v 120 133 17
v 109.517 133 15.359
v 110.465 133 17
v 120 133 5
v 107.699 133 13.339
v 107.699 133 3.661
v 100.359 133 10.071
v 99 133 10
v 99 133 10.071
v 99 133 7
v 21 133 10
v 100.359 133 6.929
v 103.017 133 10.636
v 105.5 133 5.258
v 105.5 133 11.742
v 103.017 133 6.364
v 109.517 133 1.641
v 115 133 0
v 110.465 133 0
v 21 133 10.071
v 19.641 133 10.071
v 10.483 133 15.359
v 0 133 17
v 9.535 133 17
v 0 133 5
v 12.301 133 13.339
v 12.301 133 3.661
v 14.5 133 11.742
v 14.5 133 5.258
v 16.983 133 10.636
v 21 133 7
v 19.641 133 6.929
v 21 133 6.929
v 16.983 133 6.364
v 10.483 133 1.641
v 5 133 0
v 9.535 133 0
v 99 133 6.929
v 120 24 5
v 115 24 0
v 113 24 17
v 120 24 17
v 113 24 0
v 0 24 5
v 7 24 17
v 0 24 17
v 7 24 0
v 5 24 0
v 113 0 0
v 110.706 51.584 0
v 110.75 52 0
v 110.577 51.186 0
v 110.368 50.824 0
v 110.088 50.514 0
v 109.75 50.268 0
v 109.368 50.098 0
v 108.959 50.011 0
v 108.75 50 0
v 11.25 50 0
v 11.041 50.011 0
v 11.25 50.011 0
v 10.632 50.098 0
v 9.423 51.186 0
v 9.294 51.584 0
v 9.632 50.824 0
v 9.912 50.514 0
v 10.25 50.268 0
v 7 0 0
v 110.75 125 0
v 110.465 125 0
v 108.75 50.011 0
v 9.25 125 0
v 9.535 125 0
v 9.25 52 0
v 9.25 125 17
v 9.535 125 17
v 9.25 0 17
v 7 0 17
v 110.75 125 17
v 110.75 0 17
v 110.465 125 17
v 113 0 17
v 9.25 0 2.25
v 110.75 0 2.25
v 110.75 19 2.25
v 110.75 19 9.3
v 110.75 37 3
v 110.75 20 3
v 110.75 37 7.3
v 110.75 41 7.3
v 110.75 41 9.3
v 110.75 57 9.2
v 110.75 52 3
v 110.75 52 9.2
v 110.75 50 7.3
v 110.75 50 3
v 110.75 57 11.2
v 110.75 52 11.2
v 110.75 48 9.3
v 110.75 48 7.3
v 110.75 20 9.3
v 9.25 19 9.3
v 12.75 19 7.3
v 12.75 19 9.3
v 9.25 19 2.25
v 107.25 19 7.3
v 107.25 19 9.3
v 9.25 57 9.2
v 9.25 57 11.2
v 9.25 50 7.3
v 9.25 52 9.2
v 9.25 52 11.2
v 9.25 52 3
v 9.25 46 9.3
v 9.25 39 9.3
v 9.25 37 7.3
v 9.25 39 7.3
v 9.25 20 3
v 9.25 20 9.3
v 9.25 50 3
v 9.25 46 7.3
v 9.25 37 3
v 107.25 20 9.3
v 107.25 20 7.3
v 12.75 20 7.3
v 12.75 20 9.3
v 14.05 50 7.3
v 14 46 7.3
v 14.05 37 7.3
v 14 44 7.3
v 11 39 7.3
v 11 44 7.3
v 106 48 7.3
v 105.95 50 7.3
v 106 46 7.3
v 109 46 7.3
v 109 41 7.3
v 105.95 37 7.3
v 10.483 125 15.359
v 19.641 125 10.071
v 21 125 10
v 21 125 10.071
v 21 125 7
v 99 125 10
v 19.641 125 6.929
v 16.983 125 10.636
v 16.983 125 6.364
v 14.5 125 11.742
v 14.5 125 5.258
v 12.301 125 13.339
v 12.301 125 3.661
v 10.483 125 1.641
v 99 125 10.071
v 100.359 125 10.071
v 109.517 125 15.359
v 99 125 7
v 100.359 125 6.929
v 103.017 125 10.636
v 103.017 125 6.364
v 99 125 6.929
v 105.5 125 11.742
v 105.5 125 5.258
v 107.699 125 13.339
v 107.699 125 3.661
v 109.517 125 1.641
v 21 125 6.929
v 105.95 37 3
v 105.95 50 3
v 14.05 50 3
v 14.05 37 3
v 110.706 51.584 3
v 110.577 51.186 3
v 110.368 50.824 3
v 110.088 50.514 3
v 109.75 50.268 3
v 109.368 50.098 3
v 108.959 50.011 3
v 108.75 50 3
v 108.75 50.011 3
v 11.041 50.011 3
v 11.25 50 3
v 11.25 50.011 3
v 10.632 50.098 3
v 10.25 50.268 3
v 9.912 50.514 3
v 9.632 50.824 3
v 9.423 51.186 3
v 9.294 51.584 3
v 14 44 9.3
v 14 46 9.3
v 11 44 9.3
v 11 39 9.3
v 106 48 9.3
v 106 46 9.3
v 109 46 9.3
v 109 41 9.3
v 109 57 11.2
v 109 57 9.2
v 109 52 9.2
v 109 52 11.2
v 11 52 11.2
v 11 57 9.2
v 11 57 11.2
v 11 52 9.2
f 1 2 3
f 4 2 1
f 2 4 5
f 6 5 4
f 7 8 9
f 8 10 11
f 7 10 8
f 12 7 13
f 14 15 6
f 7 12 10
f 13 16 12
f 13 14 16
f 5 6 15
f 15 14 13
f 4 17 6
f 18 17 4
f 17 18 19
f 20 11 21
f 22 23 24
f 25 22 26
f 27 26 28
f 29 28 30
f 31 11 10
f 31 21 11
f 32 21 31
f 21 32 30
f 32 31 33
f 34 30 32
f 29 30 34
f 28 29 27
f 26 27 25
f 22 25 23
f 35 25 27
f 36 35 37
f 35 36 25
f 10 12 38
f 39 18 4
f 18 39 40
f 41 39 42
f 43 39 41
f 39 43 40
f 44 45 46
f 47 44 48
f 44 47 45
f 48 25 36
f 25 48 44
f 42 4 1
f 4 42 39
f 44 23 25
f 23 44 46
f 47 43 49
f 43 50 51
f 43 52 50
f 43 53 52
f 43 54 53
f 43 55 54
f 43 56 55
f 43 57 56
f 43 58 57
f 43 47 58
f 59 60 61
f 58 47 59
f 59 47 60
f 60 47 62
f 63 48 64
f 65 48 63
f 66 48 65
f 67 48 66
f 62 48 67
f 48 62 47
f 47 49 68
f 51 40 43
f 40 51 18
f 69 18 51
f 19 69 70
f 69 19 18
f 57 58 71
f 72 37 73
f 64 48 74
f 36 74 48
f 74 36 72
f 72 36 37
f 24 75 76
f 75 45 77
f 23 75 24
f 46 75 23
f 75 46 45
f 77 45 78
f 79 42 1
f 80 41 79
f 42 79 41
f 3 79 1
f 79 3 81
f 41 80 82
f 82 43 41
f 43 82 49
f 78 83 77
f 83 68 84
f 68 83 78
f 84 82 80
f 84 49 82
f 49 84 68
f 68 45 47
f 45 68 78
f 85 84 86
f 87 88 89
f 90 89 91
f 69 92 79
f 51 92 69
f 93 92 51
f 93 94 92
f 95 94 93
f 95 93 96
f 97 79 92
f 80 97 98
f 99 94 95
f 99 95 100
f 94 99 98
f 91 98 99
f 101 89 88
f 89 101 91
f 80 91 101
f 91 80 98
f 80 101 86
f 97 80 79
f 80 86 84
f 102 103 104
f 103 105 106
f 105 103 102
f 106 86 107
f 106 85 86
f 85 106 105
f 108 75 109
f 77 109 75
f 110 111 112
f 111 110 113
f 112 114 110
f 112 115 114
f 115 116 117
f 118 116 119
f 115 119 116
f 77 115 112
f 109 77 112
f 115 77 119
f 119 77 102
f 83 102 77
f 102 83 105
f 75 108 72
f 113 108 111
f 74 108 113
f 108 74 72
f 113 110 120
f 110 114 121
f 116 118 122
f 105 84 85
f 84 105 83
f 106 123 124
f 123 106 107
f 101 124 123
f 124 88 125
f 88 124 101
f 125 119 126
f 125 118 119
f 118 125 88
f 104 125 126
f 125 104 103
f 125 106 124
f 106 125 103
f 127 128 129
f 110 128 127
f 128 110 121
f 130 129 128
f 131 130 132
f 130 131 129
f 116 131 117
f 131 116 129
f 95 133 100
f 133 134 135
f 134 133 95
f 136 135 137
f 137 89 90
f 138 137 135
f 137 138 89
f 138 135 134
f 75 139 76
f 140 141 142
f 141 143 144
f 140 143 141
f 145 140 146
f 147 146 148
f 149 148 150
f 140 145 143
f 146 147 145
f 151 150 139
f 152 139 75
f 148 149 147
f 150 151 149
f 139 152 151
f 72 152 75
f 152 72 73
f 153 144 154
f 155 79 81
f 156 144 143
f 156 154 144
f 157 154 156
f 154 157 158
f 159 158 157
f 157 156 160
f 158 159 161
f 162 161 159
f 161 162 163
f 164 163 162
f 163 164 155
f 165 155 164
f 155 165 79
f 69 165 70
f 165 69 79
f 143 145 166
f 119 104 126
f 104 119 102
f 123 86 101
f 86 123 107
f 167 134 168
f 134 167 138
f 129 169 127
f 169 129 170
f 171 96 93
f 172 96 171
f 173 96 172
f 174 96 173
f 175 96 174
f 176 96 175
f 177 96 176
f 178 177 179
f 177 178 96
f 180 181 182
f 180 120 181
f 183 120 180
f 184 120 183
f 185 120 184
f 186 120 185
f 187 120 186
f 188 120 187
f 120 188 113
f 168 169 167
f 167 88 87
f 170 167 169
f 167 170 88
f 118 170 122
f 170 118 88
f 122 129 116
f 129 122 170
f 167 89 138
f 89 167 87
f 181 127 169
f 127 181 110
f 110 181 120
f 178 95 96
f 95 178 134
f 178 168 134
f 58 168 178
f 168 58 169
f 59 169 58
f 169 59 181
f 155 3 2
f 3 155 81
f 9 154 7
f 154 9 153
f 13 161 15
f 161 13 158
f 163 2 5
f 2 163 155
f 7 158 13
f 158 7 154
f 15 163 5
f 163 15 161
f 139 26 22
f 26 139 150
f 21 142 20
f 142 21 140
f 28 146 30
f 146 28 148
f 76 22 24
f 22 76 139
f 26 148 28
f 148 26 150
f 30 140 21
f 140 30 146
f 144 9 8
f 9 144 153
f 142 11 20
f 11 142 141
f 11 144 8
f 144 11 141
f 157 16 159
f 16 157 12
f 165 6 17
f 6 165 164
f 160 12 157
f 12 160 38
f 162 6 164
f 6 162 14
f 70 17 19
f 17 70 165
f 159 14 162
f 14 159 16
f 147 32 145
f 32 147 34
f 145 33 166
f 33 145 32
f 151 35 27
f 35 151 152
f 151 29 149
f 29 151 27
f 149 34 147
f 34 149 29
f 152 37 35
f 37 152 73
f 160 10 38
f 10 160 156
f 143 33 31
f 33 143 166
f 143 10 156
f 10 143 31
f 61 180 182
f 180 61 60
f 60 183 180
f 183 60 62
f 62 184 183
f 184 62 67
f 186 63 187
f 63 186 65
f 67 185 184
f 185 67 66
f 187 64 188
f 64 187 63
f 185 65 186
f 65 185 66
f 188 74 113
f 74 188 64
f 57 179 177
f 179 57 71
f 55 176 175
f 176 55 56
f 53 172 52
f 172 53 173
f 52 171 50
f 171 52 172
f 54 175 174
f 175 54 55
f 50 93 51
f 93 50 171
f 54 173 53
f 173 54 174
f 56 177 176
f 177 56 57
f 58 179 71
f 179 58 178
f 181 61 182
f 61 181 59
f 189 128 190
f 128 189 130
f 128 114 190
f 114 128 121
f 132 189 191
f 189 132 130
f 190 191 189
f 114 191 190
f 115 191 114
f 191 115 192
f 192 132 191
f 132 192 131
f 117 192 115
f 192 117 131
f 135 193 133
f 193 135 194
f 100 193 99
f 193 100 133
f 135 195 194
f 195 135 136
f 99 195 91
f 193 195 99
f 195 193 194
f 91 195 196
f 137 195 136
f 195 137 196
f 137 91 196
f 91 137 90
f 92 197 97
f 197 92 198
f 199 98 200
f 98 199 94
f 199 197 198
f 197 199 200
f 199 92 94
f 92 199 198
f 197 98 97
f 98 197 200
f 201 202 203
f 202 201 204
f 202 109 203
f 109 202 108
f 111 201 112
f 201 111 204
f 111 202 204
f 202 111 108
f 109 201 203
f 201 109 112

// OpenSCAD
$fn = 30;


// Cartridge body dimensions

$bodyOuterWidth = 120;
$bodyOuterHeight = 109;   // Could be 110?
$bodyOuterDepth = 17;


// Cartridge connection dimensions

$connShellThickness = 2.25;
$connOuterWidth = 106;
$connInnerWidth = $connOuterWidth - (2 * $connShellThickness);
//$connOuterHeight = 17;
$connInnerHeight = $bodyOuterDepth - (2 * $connShellThickness);
$connInnerDepth = 19;
$connOuterDepth = 24;


// PCB dimensions

$pcbThickness = 1.2;   // Increase this value if IC sockets make the cartridge not fit in the console
$pcbInnerWidth = 94.5;    // Slightly larger than measured for better/easier PCB fit
$pcbOuterWidth = 101.5;   // Slightly larger than measured for better/easier PCB fit


module connector() {
    difference() {
        cube([$connOuterWidth, $bodyOuterDepth, $connOuterDepth]);

        translate([$connShellThickness, 0, 0]) {
            cube([$connInnerWidth, $connInnerHeight + $connShellThickness, $connInnerDepth]);
        }
    }
}

module body() {
    difference() {
        cube([$bodyOuterWidth, $bodyOuterDepth, $bodyOuterHeight]);

        // Chamfers on the back of the cartridge
        // NOTE: The angle was guessed to be 45 degrees
        union() {
            translate([$bodyOuterWidth+12, 0, 0]) {
                rotate(45) {
                    cube([100, 100, $bodyOuterHeight]);
                }
            }
            
            translate([-12, 0, 0]) {
                rotate(45) {
                    cube([100, 100, $bodyOuterHeight]);
                }
            }
            
            // Removes the top chamfer because it doesn't have any function and
            // makes the print more difficult.
            //translate([-12, 0, 121]) {
                //rotate(-45, [1, 0, 0]) {
                    //cube([150, 100, $bodyOuterHeight]);
                //}
            //}
        }
    }
}

module cartridgeBody() {
    translate([($bodyOuterWidth - $connOuterWidth) / 2, 0, 0]) {
        connector();
    }

    translate([0, 0, $connOuterDepth]) {
        body();
    }
}

module pcbLeftTab() {
    translate([0, 0, 5]) {
        cube([5, 5, 2]);
    }
    
    cube([2, 5, 7]);
}

module pcbRightTab() {
    scale([-1, 1, 1]) {
        pcbLeftTab();
    }
}

module pcbSlot() {
    translate([($bodyOuterWidth - $pcbInnerWidth) / 2, 0, 0]) {
        cube([$pcbInnerWidth, ($bodyOuterDepth / 2) + $pcbThickness, 20]);
    }

    translate([($bodyOuterWidth - $pcbOuterWidth) / 2, 0, $connInnerDepth + 1]) {
        cube([$pcbOuterWidth, ($bodyOuterDepth / 2) + $pcbThickness, 105]);
    }
    
    translate([($bodyOuterWidth - $pcbOuterWidth) / 2, -2, $connInnerDepth - 1]) {
        cube([$pcbOuterWidth, ($bodyOuterDepth / 2) + $pcbThickness, 105]);
    }
    
    
    // PCB supports
    
    translate([(($bodyOuterWidth + 9.6) - $pcbOuterWidth) / 2, 0, $connInnerDepth + 1]) {
        cube([$pcbOuterWidth - 9.6, $bodyOuterDepth - 3, 105]);
    }
    
    translate([($bodyOuterWidth - $pcbOuterWidth) / 2, 0, $connInnerDepth + 1]) {
        cube([$pcbOuterWidth, $bodyOuterDepth - 3, 17]);
    }
    
    translate([($bodyOuterWidth - $pcbOuterWidth) / 2, 0, $connInnerDepth + 31]) {
        cube([$pcbOuterWidth, $bodyOuterDepth - 3, 75]);
    }
    
    
    // Top hand grip
    
    translate([99, -6, 125]) {
        cylinder(10, 13, 13);
    }
    
    translate([21, -6, 125]) {
        cylinder(10, 13, 13);
    }
    
    translate([21, -6, 125]) {
        cube([78, 13, 13]);
    }
    
    translate([99, 23, 125]) {
        cylinder(10, 13, 13);
    }
    
    translate([21, 23, 125]) {
        cylinder(10, 13, 13);
    }
    
    translate([21, 10, 125]) {
        cube([78, 13, 13]);
    }
    
    
    // Back cut-out
    
    $backHoleX = 11.25;
    $backHoleZ = 52;
    $backHoleWidth = $pcbOuterWidth - 4;
    $backHoleHeight = 73;
    $backHoleCornerRad = 2;
    
    
    translate([$backHoleX, 20, $backHoleZ]) {
        rotate(90, [1, 0, 0]) {
            cylinder(20, $backHoleCornerRad, $backHoleCornerRad);
        }
    }
    
    translate([$backHoleX + $backHoleWidth, 20, $backHoleZ]) {
        rotate(90, [1, 0, 0]) {
            cylinder(20, $backHoleCornerRad, $backHoleCornerRad);
        }
    }
    
    translate([$backHoleX - $backHoleCornerRad, 0, $backHoleZ]) {
        cube([$backHoleWidth + (2 * $backHoleCornerRad), 20, $backHoleHeight]);
    }
    
    translate([$backHoleX, 0, $backHoleZ - $backHoleCornerRad]) {
        cube([$backHoleWidth, 20, $backHoleHeight]);
    }
}


module cartridge() {

    difference() {
        cartridgeBody();

        pcbSlot();
    }


// Retaining bases

    translate([9, ($bodyOuterDepth / 2) + $pcbThickness - 2, 39]) {
        pcbLeftTab();
    }

    translate([111, ($bodyOuterDepth / 2) + $pcbThickness - 2, 41]) {
        pcbRightTab();
    }


    // Retaining clips

    translate([109, 5.8, 52]) {
        cube([2, 2, 5]);
    }

    translate([9, 5.8, 52]) {
        cube([2, 2, 5]);
    }
}

translate([0, 0, $bodyOuterDepth]) {
    rotate(-90, [1, 0, 0]) {
        cartridge();
    }
}
